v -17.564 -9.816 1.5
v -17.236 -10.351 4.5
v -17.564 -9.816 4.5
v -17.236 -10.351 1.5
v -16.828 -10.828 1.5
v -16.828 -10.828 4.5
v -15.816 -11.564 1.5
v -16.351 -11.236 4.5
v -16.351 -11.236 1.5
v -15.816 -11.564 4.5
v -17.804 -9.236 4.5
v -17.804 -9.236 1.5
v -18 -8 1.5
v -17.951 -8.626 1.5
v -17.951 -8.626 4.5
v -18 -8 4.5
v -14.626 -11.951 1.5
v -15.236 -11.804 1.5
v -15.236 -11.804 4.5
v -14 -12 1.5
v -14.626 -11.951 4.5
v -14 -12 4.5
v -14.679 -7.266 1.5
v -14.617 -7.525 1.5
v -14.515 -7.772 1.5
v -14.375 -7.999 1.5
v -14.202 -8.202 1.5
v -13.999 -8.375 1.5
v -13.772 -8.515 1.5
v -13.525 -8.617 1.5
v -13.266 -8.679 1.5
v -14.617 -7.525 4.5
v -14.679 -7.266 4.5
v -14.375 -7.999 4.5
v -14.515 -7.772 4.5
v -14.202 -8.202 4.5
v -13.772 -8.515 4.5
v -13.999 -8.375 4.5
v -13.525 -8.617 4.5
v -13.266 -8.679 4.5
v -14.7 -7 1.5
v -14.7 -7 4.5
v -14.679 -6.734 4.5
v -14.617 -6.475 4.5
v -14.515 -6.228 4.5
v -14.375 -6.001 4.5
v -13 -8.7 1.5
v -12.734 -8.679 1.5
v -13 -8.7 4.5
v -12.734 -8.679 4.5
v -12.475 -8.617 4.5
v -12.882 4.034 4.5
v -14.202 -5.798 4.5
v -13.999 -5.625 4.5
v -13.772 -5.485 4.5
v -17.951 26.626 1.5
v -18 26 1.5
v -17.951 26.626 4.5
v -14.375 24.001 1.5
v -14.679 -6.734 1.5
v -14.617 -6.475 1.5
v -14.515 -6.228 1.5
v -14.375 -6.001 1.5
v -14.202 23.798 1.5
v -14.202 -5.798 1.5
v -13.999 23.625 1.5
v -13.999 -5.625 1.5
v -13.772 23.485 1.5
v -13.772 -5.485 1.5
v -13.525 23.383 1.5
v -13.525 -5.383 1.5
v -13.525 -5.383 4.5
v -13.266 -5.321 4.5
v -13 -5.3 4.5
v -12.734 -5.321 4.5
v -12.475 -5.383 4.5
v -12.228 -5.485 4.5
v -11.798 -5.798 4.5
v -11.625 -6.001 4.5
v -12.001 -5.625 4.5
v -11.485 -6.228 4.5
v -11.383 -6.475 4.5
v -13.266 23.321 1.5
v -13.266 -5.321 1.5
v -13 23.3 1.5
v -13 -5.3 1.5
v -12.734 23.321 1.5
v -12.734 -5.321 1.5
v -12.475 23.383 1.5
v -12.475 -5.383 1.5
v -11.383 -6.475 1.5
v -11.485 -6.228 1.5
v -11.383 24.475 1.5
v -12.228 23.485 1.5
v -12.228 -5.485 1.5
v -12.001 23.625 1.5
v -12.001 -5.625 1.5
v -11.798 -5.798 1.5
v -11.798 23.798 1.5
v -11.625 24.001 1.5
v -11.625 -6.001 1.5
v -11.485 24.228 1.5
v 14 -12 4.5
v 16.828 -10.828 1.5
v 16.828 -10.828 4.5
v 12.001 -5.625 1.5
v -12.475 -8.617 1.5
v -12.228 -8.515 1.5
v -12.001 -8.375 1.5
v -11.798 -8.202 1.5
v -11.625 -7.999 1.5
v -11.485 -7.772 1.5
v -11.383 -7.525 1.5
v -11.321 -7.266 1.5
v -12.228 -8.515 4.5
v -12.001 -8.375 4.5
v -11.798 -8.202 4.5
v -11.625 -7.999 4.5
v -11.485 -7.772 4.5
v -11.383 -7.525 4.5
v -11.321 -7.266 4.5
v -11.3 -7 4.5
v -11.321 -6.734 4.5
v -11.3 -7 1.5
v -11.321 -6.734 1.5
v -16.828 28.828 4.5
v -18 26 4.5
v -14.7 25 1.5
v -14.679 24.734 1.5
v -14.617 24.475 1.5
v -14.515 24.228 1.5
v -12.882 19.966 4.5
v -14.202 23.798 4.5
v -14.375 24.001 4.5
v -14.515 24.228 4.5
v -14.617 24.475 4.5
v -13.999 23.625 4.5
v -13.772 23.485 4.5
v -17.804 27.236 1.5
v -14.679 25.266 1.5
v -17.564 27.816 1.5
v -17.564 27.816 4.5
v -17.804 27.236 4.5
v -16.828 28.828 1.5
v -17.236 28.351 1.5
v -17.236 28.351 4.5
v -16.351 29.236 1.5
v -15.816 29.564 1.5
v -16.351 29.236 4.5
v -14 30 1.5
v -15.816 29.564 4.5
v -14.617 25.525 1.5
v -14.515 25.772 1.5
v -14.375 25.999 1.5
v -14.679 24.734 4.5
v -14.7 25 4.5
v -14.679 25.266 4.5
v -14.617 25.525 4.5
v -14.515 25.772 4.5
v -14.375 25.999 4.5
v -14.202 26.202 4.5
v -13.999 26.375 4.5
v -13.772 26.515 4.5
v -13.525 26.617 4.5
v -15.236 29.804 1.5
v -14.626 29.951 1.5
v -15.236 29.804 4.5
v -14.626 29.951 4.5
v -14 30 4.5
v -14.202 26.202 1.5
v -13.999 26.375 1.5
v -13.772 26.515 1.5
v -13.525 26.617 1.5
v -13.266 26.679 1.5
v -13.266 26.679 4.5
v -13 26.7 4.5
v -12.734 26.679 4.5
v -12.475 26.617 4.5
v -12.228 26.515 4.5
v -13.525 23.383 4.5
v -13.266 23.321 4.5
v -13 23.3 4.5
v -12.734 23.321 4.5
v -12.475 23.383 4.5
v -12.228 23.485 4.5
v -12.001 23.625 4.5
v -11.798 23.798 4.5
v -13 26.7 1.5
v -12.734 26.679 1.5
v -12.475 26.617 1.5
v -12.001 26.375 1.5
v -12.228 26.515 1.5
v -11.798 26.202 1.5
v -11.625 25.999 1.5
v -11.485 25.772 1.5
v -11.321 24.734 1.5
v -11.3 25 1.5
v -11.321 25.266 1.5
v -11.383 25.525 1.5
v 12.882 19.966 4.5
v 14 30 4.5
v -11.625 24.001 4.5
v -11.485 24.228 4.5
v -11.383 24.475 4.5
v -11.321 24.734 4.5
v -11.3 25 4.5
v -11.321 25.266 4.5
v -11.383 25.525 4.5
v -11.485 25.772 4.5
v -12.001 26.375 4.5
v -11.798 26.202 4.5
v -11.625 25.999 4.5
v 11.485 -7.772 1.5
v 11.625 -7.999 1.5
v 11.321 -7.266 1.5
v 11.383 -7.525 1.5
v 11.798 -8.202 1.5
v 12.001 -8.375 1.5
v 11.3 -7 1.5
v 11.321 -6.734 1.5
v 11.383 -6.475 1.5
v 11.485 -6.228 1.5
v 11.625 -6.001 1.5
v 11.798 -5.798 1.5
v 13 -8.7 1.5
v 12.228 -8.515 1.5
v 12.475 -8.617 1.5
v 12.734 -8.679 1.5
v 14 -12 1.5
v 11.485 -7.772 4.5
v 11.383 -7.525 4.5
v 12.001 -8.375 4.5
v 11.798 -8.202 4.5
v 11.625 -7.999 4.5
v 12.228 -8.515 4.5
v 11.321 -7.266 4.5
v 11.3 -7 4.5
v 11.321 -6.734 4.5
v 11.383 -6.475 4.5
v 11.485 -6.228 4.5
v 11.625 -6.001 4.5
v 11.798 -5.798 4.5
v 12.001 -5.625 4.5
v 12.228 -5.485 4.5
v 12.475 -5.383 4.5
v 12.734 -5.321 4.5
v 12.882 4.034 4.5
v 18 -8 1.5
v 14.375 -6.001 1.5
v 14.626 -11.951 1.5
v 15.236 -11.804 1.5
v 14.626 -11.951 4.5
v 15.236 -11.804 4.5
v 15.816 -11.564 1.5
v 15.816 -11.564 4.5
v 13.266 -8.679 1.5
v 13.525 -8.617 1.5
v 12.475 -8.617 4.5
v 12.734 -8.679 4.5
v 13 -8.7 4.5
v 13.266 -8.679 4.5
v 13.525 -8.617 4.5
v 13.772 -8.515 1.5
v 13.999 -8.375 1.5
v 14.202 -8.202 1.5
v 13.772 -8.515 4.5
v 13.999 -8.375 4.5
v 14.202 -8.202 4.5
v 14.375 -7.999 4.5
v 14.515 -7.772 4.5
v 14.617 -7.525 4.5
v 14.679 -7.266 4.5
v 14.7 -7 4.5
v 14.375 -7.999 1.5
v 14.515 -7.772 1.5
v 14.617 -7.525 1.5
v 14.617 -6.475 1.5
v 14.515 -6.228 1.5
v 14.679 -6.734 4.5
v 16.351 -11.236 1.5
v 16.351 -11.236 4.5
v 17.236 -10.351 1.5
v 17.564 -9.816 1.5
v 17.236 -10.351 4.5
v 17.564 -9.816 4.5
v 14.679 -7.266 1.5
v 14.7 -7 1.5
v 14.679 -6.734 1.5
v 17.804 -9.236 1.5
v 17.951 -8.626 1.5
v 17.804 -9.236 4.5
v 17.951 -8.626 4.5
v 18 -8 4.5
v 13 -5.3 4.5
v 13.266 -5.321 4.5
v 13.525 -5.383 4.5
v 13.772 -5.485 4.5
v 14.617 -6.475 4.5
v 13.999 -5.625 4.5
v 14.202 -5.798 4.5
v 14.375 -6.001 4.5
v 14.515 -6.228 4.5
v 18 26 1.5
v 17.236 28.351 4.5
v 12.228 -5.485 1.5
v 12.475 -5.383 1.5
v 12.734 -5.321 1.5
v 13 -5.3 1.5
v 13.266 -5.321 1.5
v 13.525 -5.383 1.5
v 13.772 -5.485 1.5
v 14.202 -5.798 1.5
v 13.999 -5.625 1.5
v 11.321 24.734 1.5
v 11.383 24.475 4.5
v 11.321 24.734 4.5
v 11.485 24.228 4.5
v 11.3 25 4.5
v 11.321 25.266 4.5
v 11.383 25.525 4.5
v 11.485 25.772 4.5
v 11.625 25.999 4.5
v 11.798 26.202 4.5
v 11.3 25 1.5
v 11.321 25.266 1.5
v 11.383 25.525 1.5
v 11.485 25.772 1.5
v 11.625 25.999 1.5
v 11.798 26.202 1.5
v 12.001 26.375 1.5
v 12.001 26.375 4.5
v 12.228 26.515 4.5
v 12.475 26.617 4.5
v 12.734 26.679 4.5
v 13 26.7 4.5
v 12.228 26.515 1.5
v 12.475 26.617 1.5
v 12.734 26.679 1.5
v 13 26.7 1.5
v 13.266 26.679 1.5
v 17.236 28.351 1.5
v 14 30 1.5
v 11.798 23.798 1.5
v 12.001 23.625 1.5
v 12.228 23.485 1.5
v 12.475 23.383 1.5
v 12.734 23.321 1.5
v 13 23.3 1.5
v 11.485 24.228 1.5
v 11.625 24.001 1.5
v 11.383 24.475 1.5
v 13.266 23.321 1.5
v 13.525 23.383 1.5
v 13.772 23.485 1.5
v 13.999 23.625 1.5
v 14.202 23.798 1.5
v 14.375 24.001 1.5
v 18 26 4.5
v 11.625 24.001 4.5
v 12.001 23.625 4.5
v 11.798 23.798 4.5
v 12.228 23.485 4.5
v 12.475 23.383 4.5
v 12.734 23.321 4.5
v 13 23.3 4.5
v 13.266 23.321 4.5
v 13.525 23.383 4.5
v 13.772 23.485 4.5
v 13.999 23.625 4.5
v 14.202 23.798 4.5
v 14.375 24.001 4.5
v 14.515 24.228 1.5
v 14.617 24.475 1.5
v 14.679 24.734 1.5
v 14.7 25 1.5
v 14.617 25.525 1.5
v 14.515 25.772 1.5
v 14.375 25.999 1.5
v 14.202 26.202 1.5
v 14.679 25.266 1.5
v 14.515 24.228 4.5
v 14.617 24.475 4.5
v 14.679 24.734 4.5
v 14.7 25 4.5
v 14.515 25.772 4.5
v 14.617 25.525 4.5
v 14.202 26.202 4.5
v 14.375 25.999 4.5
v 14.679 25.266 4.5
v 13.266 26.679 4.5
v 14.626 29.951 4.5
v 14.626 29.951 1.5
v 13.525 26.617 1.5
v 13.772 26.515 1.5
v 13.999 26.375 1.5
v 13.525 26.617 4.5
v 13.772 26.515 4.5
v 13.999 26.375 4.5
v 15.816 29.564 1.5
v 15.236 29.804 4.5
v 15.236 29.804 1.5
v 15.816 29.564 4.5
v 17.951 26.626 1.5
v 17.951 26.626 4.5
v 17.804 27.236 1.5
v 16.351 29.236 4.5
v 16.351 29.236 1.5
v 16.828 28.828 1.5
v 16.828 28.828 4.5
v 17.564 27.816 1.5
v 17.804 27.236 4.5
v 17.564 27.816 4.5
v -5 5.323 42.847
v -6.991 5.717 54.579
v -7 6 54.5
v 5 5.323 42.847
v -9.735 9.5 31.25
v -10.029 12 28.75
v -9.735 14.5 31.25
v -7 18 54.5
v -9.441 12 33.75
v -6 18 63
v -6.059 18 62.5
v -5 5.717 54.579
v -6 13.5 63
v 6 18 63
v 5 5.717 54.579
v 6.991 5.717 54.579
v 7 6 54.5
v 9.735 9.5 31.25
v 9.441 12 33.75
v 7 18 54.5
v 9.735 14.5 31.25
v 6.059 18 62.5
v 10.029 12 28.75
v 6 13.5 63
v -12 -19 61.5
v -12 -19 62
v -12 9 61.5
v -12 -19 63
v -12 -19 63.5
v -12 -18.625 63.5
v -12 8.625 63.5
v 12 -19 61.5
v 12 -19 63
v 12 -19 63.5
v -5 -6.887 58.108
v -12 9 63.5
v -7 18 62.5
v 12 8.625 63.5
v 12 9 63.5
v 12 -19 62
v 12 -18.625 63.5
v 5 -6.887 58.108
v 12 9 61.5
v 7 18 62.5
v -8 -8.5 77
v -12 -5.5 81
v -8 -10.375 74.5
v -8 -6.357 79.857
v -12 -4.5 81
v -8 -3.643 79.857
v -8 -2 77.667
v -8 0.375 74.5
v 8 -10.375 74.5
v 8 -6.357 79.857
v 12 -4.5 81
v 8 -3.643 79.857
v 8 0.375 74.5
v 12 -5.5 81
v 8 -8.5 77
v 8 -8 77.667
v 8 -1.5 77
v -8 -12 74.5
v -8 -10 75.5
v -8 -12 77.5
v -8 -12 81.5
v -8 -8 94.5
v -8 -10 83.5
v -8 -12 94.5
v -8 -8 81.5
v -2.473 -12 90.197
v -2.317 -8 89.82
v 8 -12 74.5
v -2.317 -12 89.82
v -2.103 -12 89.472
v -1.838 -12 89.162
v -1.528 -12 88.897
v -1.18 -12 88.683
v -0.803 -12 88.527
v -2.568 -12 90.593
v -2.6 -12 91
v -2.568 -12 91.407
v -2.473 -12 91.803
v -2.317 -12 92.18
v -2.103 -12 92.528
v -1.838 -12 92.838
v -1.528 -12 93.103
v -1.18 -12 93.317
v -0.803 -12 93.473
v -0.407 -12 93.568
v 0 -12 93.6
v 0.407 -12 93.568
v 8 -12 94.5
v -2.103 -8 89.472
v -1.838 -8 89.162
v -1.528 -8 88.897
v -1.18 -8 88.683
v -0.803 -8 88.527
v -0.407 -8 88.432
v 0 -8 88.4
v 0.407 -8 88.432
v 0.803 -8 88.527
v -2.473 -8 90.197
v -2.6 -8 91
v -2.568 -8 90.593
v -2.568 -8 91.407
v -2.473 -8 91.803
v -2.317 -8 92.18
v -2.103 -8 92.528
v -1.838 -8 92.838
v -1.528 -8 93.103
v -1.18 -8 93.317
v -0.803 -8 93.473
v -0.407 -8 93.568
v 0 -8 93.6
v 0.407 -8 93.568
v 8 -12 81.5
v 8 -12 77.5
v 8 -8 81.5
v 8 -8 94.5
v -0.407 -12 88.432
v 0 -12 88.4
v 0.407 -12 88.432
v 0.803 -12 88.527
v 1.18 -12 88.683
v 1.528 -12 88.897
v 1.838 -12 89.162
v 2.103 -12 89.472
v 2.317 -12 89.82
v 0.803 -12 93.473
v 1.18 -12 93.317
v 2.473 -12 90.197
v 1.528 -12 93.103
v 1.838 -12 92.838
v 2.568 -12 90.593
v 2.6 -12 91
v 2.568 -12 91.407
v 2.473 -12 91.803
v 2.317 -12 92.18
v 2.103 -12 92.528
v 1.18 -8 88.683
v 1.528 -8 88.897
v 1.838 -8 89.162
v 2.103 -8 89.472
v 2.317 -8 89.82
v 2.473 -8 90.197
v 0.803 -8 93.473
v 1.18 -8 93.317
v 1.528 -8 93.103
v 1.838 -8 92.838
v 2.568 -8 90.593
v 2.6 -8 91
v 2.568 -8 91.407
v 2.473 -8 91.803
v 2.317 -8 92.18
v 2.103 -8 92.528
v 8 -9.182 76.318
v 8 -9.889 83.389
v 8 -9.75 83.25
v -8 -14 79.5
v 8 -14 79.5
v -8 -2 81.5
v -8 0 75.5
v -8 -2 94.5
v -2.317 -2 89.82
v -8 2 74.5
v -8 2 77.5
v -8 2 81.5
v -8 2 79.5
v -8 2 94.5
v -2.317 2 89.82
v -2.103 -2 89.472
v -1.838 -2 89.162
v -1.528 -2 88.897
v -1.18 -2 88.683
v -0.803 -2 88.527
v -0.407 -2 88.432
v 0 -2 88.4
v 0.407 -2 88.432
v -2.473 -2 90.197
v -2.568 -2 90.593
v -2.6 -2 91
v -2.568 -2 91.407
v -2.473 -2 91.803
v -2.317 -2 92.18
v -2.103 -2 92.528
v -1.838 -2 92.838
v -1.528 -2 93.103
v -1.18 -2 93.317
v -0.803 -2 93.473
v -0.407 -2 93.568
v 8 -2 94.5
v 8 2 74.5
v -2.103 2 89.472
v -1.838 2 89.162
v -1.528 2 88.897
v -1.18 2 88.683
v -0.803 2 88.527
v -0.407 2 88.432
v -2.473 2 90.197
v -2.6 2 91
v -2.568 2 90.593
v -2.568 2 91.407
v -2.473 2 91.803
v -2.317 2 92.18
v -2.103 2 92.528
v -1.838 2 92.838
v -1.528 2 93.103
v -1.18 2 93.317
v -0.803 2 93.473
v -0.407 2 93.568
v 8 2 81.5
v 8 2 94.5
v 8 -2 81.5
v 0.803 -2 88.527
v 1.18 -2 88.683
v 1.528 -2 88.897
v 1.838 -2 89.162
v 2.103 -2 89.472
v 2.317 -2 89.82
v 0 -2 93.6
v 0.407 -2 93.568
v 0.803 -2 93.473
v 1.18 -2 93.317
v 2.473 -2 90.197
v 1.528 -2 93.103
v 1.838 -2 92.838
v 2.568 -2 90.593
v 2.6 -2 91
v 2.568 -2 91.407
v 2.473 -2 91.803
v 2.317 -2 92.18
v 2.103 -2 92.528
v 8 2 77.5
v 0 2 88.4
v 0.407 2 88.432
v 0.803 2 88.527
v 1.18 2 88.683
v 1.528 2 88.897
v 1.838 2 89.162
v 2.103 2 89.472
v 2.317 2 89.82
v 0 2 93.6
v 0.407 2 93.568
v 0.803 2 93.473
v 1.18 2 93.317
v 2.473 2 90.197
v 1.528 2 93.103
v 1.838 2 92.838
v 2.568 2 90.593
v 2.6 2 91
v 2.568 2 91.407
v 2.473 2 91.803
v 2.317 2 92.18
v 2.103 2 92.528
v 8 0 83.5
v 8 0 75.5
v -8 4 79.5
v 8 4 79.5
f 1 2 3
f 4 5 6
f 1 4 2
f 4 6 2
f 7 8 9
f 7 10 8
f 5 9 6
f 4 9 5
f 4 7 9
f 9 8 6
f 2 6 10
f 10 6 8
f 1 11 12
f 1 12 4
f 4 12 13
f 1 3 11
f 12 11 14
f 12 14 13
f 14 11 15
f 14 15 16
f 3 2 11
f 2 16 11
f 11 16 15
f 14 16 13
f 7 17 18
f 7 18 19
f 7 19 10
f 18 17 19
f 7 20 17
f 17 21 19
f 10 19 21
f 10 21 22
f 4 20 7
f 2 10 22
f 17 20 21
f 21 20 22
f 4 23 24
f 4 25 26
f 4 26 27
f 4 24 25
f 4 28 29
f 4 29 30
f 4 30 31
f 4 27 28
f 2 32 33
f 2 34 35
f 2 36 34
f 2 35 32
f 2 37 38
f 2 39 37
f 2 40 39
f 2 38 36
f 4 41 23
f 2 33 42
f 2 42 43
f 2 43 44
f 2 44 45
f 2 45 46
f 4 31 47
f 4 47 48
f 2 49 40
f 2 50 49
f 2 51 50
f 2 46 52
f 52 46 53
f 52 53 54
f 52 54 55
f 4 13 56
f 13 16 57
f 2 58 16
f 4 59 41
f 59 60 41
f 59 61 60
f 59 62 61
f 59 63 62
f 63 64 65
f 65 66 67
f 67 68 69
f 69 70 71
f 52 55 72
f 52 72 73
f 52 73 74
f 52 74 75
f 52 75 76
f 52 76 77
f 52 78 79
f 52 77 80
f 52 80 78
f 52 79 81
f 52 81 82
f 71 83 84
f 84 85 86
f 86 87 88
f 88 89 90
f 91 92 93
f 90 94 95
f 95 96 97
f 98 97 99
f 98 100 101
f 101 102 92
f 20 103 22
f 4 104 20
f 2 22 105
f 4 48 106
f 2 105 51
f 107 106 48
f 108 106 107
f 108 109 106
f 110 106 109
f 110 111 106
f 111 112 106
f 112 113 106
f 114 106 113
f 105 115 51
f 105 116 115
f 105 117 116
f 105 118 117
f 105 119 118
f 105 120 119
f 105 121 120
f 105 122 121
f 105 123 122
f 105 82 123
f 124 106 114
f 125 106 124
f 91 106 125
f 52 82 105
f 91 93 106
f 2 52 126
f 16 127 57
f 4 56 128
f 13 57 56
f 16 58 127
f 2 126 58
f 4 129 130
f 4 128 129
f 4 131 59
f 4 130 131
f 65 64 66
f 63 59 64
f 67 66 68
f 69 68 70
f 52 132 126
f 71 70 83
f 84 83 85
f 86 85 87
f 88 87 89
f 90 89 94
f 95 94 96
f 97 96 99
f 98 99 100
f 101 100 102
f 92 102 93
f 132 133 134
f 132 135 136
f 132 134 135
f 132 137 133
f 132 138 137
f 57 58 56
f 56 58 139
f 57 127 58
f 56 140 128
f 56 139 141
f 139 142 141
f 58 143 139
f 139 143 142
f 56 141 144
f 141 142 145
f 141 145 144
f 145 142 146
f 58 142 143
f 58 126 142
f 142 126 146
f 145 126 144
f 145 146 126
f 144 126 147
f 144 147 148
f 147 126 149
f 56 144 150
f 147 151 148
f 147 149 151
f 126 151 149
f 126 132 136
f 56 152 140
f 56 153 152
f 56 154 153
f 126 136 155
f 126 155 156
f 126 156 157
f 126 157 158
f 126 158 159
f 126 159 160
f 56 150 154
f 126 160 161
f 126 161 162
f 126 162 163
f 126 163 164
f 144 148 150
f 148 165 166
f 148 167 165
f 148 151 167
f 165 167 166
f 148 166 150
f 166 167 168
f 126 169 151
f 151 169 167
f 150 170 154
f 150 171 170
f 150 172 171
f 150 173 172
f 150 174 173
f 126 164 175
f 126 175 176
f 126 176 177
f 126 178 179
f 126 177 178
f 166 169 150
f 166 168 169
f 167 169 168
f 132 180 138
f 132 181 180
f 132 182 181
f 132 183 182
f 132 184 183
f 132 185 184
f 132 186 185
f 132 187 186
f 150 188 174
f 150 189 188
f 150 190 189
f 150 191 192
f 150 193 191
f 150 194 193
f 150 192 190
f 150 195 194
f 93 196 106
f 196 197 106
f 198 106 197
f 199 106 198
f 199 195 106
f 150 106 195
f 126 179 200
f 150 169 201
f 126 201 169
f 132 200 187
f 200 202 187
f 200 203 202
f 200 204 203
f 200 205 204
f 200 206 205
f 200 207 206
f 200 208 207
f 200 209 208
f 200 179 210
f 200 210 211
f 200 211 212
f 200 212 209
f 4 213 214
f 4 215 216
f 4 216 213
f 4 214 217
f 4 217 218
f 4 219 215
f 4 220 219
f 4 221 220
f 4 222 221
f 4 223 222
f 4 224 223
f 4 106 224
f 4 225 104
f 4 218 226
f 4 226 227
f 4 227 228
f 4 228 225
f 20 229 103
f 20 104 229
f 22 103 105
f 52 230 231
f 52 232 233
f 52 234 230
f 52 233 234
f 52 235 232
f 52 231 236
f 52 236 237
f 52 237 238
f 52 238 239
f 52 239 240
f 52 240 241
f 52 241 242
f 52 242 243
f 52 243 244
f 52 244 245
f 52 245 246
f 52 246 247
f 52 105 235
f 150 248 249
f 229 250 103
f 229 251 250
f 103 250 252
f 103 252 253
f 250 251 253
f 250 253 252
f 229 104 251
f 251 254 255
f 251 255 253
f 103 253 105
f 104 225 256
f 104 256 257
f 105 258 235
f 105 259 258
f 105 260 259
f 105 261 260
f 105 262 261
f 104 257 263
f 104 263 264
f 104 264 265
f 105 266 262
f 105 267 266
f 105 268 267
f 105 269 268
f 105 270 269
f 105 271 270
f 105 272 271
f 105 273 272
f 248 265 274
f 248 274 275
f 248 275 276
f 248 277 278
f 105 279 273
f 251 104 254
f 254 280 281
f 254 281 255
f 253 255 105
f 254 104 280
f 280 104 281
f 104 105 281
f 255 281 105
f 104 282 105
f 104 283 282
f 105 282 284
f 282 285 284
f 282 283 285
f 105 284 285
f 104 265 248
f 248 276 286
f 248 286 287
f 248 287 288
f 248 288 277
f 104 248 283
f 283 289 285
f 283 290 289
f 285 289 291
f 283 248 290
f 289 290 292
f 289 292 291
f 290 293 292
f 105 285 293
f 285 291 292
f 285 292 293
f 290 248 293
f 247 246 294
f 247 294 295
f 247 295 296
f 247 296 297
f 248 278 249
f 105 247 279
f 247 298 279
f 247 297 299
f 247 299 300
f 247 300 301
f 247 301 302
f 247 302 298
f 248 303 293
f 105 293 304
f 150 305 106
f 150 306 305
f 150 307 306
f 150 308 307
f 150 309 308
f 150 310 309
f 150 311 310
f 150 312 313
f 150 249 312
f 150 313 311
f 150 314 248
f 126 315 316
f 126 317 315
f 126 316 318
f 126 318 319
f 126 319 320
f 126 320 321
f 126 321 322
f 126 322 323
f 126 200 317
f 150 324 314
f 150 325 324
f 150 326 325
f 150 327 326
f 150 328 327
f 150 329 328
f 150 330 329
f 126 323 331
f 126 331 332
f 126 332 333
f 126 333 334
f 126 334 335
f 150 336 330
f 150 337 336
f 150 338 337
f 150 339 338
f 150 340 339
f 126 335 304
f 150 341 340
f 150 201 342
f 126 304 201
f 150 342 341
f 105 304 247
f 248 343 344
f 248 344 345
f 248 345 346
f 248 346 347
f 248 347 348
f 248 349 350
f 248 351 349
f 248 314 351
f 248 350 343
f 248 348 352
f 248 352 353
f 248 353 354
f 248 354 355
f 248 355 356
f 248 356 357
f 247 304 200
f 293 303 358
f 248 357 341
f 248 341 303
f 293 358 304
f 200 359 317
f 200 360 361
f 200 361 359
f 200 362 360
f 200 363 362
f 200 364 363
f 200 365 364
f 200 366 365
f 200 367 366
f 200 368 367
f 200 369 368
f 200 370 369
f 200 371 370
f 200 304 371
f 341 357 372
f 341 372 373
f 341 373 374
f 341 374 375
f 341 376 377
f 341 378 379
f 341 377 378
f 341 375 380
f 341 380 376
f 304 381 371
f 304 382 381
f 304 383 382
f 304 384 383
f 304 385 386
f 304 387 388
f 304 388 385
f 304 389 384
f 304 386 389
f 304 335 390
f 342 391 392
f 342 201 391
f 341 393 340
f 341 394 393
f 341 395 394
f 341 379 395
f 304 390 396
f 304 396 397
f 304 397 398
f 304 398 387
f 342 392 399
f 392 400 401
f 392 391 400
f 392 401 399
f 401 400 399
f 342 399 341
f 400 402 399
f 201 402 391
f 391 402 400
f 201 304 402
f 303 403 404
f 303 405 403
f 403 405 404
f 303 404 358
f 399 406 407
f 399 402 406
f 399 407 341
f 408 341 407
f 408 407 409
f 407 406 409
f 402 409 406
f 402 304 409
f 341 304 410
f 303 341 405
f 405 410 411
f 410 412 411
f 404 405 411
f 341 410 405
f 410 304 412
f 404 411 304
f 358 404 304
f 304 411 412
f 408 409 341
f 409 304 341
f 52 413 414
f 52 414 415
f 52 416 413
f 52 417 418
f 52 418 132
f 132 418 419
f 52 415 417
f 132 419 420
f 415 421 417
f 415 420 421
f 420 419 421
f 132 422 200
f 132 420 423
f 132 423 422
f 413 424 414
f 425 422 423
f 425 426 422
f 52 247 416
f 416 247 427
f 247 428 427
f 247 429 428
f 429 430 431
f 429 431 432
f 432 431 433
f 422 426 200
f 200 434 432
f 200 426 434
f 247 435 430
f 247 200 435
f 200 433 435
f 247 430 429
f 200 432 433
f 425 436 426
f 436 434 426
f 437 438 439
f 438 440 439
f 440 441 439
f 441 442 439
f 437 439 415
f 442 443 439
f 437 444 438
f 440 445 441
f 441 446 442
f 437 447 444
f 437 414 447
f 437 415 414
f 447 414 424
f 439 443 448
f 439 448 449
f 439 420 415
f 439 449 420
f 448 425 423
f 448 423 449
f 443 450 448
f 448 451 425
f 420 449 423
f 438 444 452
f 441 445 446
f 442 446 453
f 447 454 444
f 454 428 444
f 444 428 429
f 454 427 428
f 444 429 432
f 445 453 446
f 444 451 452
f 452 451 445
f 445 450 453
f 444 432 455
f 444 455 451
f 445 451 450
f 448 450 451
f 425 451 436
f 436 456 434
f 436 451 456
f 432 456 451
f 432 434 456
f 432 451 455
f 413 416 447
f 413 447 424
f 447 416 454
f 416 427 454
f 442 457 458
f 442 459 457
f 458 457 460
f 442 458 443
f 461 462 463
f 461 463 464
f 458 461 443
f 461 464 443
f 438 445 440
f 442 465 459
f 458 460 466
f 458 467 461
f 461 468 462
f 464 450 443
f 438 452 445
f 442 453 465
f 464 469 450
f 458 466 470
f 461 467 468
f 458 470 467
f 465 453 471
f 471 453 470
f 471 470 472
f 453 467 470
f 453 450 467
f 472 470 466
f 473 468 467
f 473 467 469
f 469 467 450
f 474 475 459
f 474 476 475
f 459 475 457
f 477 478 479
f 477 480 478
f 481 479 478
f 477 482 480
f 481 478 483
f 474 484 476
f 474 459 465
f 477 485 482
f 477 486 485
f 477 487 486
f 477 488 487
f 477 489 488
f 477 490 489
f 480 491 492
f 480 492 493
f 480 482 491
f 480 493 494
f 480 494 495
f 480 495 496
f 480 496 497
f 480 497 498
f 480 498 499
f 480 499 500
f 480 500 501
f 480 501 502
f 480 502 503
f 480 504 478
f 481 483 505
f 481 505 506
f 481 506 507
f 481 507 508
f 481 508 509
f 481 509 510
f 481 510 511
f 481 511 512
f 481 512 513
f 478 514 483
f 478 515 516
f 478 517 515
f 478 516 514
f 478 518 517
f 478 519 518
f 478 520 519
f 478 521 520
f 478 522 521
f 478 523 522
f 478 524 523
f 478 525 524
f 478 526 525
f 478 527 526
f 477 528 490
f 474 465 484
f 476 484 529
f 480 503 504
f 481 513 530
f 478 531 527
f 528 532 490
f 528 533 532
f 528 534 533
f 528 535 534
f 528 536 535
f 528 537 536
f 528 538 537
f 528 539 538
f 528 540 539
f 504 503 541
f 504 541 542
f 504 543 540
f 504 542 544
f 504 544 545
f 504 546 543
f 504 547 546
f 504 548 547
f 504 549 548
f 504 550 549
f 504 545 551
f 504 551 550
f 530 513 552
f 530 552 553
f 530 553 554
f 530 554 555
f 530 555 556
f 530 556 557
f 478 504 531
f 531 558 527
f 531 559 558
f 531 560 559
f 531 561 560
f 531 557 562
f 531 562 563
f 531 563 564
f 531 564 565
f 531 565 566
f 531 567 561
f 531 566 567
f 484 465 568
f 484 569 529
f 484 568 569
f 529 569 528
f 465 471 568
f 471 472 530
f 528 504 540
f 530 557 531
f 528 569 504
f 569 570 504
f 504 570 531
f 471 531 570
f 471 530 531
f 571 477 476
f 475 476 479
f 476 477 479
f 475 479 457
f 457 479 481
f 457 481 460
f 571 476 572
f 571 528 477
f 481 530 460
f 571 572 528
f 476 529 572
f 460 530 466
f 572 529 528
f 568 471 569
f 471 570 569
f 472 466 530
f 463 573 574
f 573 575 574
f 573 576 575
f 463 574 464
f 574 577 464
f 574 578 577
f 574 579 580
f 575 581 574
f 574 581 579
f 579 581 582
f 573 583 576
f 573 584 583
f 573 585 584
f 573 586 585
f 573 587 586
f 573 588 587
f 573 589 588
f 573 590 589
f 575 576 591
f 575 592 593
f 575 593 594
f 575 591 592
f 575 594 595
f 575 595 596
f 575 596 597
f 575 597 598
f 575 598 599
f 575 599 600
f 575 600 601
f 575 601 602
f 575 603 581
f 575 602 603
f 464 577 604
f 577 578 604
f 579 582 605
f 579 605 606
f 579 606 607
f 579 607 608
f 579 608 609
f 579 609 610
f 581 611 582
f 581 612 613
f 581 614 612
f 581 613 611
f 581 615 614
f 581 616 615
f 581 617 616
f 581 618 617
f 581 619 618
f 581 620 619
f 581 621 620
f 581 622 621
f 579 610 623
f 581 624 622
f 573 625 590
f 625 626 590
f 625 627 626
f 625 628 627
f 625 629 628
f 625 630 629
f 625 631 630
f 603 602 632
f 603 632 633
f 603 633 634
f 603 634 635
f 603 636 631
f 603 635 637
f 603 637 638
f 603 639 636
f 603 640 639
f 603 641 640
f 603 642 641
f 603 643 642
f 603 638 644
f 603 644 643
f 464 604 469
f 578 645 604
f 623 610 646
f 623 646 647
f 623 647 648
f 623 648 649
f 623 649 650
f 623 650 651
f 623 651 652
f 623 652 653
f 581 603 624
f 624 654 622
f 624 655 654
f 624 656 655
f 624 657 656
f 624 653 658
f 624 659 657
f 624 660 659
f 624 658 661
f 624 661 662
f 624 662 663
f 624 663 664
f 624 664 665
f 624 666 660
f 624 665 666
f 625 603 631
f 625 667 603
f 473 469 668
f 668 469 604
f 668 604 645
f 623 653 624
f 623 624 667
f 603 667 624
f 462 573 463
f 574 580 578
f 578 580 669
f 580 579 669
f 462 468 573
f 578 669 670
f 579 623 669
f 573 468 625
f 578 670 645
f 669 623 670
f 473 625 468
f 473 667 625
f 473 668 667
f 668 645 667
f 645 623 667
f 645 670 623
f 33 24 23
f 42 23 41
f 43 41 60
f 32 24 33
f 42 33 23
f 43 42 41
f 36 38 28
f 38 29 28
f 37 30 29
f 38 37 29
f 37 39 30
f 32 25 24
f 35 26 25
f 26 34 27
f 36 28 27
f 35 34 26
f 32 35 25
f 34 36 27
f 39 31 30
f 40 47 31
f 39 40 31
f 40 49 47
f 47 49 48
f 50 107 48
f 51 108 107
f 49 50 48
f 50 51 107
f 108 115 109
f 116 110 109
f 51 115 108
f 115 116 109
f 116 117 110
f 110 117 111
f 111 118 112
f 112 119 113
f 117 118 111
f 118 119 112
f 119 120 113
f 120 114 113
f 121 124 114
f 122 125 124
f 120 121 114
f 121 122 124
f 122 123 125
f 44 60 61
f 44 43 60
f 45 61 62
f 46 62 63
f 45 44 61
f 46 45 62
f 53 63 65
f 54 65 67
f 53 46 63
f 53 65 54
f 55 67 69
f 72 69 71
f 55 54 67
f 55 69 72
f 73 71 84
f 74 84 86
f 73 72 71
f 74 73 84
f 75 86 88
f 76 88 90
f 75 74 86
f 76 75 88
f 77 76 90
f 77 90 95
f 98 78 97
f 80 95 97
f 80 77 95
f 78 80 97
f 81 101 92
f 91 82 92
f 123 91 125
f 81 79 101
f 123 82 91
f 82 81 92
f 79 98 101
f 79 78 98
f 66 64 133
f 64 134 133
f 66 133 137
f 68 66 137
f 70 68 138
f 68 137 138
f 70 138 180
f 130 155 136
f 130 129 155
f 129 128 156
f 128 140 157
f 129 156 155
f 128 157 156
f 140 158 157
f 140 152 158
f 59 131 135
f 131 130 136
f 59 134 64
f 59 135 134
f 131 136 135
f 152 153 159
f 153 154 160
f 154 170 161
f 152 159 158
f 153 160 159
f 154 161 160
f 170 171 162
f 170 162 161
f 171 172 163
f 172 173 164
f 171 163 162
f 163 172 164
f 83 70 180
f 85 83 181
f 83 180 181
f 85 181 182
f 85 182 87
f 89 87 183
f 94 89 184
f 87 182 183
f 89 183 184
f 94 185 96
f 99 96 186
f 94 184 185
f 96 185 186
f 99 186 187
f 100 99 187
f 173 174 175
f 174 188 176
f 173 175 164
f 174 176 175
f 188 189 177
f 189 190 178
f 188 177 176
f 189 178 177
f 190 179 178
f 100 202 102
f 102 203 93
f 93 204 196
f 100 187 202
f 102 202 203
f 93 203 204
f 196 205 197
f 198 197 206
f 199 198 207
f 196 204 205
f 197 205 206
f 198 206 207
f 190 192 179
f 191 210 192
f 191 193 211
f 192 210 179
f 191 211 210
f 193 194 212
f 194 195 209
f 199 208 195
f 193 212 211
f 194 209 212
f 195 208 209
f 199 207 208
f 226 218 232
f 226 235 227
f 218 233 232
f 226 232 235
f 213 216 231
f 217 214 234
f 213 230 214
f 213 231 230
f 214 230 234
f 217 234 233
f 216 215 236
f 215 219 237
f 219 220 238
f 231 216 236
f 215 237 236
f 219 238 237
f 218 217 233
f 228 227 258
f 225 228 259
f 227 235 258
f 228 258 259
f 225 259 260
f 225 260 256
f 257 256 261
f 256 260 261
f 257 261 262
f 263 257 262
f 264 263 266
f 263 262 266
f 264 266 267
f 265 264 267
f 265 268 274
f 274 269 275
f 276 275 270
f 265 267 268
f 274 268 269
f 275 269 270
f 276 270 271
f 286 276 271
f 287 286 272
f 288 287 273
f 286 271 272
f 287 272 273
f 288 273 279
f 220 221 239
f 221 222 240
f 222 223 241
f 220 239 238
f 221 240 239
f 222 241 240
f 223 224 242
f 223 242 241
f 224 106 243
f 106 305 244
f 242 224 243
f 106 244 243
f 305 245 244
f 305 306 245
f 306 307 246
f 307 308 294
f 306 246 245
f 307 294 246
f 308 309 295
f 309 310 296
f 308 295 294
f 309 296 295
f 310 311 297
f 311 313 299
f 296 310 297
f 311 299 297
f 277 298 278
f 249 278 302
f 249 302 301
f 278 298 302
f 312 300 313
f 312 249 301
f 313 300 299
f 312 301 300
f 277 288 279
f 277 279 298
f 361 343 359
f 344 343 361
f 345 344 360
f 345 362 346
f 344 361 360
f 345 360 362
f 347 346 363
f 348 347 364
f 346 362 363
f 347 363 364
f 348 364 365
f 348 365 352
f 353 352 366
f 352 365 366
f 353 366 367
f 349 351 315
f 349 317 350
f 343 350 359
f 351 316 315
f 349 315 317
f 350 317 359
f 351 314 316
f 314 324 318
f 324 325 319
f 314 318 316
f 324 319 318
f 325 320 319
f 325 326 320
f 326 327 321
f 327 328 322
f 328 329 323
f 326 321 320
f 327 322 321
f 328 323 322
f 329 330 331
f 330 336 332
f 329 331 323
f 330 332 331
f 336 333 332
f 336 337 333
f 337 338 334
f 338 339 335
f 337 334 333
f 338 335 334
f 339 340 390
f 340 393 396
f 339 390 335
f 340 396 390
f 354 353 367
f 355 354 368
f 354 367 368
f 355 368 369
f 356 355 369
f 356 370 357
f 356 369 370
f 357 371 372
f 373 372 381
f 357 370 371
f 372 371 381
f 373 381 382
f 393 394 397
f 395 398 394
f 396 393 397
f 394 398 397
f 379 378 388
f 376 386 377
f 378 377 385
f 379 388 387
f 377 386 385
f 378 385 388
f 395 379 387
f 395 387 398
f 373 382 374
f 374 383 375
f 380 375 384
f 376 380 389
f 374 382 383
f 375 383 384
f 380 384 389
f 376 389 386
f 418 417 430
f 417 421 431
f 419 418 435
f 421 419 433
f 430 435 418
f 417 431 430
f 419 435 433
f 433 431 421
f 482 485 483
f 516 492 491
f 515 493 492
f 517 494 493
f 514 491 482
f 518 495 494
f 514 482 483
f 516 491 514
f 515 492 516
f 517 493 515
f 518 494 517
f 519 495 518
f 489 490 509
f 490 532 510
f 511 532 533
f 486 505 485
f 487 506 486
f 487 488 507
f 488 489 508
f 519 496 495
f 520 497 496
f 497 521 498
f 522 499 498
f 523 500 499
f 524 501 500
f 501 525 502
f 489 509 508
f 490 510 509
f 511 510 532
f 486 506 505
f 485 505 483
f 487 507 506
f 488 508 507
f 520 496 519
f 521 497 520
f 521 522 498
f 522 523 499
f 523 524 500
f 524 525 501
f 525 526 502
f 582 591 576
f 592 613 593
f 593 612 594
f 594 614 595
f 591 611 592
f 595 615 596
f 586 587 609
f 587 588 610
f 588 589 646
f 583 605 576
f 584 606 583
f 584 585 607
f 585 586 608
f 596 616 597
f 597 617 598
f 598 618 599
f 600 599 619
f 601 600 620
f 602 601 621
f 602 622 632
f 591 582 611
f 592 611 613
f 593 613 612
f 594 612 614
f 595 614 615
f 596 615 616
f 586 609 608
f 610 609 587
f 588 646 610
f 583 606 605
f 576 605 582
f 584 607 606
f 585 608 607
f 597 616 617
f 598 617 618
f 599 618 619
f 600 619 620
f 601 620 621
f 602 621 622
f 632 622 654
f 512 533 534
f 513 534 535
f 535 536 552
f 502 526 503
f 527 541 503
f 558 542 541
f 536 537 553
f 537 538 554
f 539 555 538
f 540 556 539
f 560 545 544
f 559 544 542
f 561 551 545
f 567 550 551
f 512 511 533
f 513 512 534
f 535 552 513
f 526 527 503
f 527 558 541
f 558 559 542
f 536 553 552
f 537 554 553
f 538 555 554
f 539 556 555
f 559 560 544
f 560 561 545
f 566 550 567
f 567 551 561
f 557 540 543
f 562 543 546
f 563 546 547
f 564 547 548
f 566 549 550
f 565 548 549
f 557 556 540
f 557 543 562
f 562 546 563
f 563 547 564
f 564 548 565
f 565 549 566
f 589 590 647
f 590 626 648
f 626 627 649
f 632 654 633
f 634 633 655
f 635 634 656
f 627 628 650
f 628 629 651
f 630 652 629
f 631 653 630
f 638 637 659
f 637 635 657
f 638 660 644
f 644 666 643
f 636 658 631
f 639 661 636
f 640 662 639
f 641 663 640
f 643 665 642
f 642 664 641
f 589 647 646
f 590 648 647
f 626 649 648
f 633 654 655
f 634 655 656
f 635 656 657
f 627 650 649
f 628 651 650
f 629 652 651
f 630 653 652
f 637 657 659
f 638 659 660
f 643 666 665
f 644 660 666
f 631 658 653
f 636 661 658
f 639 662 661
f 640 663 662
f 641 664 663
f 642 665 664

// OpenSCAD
// ====================================================================
// Intermediate Alpine Cableway Support Tower (Cantilever Mast + Alpine Roof Top)
// 
// Architectural & Engineering Features:
// - FIXED MAST CUTOUT: Removed large 14mm hole that caused floating layer slicer warnings!
//   Replaced with a small 5.0mm 45-degree self-supporting diamond window.
// - CANTILEVER TOWER MAST PRESERVED: Tower mast column is positioned behind the cable path (+Y side at Y = +12.0mm), leaving a 100% unobstructed vertical corridor around Y = -5.0mm for Gondola Cabin passage!
// - MATCHING ALPINE GABLE ROOF TOP CAP: The top of the cantilever cross-arm features the EXACT SAME 45-degree Alpine Gable Roof cap & clevis ears matching Station A and Station B!
//   - Roof Width: 28.0mm, Roof Pitch Height: 18.0mm.
//   - Vertical Clevis Ears: Exact same 14.0mm outer span & 6.0mm inner channel width.
//   - Midpoint Axle Bore: Positioned at Z = 91.0mm (5.2mm bore) - fits the exact same Sheave (08a), Axle Pin (08c), and End Cap (08d)!
// - 100% Support-Free: Rests flat on build plate at Z = 0 with 45-degree self-supporting bracing.
// ====================================================================

$fn = 40;

// Tower Dimensions (mm)
tower_axle_z  = 91.0;  // Axle center height at midpoint X = 0mm
roof_h        = 18.0;  // Peak roof pitch height (EXACT MATCH to Station A & B!)
eaves_z       = tower_axle_z - 10.5 - roof_h; // Eaves height Z = 62.5mm
building_w    = 28.0;  // Roof width (EXACT MATCH to Station A & B!)
roof_l        = 24.0;  // Roof cap length along X-axis
base_l        = 36.0;  // Foundation baseplate length along X-axis
base_w        = 42.0;  // Foundation baseplate width along Y-axis
base_h        = 3.0;   // Baseplate thickness
mast_y        = 12.0;  // Mast column center (positioned behind cable path for cabin clearance)

module rounded_box(l, w, h, r) {
    hull() {
        for (x = [-l/2 + r, l/2 - r]) {
            for (y = [-w/2 + r, w/2 - r]) {
                translate([x, y, 0])
                    cylinder(r = r, h = h);
            }
        }
    }
}

module intermediate_support_tower() {
    difference() {
        union() {
            // 1. Off-Center Foundation Baseplate (Spans Y = -12mm to +30mm at Z = 0)
            translate([0, 9.0, base_h / 2])
                hull() {
                    rounded_box(base_l, base_w, base_h, 4.0);
                }

            // 2. Main Structural Support Mast (Positioned at Y = +12.0mm behind track path)
            hull() {
                translate([0, mast_y, base_h])
                    cube([base_l - 10.0, 16.0, 1.0], center = true);
                translate([0, mast_y, eaves_z])
                    cube([12.0, 12.0, 1.0], center = true);
            }

            // 3. Cantilevered Overhead Cross-Arm (Reaches forward from Y = +12.0mm to Y = -5.0mm)
            hull() {
                translate([0, mast_y, eaves_z - 4.0])
                    cube([14.0, 12.0, 8.0], center = true);
                translate([0, -5.0, eaves_z])
                    cube([roof_l, building_w, 2.0], center = true);
            }

            // 4. 45-Degree Self-Supporting Diagonal Under-Brace (Supports cantilever arm)
            hull() {
                translate([0, mast_y - 2.0, eaves_z - 20.0])
                    cube([10.0, 8.0, 1.0], center = true);
                translate([0, -5.0, eaves_z])
                    cube([10.0, 10.0, 1.0], center = true);
            }

            // 5. Alpine 45-degree Pitch Gable Roof Top Cap (ONLY ON TOP OF CANTILEVER ARM AT Y = -5.0mm!)
            translate([0, -5.0, eaves_z])
                hull() {
                    cube([roof_l, building_w, 1.0], center = true);
                    translate([0, 0, roof_h])
                        cube([roof_l, 1.0, 1.0], center = true);
                }

            // 6. Elevated Open Vertical Clevis Ears (EXACT MATCH TO STATIONS A & B!)
            for (y_sign = [-1, 1]) {
                translate([0, -5.0 + y_sign * 5.0, eaves_z + roof_h + 4.0])
                    cube([16.0, 4.0, 20.0], center = true);
                
                // Lower 45-degree self-supporting anchor gussets in gable roof
                translate([0, -5.0 + y_sign * 5.0, eaves_z + roof_h - 1.0])
                    rotate([0, 90, 0])
                        rotate([0, 0, 45])
                            cube([8.0 / sqrt(2), 8.0 / sqrt(2), 16.0], center = true);
            }
        }

        // --- SUBTRACTIONS ---

        // A. Small 5.0mm 45-Degree Self-Supporting Diamond Window (Zero Floating Overhangs!)
        translate([0, mast_y, eaves_z / 2])
            rotate([0, 90, 0])
                rotate([0, 0, 45])
                    cube([5.0 / sqrt(2), 5.0 / sqrt(2), base_l + 10], center = true);

        // B. Elevated Sheave Axle Bore (EXACT MATCH TO STATIONS A & B!)
        // Positioned at Z = tower_axle_z = 91.0mm, 5.2mm bore diameter
        translate([0, -5.0, tower_axle_z])
            rotate([90, 0, 0])
                cylinder(d = 5.2, h = building_w + 14, center = true);

        // C. Baseplate Mounting Screw Holes (4x M3 countersunk holes)
        for (x_sign = [-1, 1]) {
            for (y_sign = [-1, 1]) {
                translate([x_sign * (base_l / 2 - 5.0), 9.0 + y_sign * (base_w / 2 - 5.0), -1]) {
                    cylinder(d = 3.4, h = base_h + 4);
                    cylinder(d1 = 6.2, d2 = 3.4, h = 2.0);
                }
            }
        }
    }
}

// Render flat on foundation baseplate at Z = 0
intermediate_support_tower();
